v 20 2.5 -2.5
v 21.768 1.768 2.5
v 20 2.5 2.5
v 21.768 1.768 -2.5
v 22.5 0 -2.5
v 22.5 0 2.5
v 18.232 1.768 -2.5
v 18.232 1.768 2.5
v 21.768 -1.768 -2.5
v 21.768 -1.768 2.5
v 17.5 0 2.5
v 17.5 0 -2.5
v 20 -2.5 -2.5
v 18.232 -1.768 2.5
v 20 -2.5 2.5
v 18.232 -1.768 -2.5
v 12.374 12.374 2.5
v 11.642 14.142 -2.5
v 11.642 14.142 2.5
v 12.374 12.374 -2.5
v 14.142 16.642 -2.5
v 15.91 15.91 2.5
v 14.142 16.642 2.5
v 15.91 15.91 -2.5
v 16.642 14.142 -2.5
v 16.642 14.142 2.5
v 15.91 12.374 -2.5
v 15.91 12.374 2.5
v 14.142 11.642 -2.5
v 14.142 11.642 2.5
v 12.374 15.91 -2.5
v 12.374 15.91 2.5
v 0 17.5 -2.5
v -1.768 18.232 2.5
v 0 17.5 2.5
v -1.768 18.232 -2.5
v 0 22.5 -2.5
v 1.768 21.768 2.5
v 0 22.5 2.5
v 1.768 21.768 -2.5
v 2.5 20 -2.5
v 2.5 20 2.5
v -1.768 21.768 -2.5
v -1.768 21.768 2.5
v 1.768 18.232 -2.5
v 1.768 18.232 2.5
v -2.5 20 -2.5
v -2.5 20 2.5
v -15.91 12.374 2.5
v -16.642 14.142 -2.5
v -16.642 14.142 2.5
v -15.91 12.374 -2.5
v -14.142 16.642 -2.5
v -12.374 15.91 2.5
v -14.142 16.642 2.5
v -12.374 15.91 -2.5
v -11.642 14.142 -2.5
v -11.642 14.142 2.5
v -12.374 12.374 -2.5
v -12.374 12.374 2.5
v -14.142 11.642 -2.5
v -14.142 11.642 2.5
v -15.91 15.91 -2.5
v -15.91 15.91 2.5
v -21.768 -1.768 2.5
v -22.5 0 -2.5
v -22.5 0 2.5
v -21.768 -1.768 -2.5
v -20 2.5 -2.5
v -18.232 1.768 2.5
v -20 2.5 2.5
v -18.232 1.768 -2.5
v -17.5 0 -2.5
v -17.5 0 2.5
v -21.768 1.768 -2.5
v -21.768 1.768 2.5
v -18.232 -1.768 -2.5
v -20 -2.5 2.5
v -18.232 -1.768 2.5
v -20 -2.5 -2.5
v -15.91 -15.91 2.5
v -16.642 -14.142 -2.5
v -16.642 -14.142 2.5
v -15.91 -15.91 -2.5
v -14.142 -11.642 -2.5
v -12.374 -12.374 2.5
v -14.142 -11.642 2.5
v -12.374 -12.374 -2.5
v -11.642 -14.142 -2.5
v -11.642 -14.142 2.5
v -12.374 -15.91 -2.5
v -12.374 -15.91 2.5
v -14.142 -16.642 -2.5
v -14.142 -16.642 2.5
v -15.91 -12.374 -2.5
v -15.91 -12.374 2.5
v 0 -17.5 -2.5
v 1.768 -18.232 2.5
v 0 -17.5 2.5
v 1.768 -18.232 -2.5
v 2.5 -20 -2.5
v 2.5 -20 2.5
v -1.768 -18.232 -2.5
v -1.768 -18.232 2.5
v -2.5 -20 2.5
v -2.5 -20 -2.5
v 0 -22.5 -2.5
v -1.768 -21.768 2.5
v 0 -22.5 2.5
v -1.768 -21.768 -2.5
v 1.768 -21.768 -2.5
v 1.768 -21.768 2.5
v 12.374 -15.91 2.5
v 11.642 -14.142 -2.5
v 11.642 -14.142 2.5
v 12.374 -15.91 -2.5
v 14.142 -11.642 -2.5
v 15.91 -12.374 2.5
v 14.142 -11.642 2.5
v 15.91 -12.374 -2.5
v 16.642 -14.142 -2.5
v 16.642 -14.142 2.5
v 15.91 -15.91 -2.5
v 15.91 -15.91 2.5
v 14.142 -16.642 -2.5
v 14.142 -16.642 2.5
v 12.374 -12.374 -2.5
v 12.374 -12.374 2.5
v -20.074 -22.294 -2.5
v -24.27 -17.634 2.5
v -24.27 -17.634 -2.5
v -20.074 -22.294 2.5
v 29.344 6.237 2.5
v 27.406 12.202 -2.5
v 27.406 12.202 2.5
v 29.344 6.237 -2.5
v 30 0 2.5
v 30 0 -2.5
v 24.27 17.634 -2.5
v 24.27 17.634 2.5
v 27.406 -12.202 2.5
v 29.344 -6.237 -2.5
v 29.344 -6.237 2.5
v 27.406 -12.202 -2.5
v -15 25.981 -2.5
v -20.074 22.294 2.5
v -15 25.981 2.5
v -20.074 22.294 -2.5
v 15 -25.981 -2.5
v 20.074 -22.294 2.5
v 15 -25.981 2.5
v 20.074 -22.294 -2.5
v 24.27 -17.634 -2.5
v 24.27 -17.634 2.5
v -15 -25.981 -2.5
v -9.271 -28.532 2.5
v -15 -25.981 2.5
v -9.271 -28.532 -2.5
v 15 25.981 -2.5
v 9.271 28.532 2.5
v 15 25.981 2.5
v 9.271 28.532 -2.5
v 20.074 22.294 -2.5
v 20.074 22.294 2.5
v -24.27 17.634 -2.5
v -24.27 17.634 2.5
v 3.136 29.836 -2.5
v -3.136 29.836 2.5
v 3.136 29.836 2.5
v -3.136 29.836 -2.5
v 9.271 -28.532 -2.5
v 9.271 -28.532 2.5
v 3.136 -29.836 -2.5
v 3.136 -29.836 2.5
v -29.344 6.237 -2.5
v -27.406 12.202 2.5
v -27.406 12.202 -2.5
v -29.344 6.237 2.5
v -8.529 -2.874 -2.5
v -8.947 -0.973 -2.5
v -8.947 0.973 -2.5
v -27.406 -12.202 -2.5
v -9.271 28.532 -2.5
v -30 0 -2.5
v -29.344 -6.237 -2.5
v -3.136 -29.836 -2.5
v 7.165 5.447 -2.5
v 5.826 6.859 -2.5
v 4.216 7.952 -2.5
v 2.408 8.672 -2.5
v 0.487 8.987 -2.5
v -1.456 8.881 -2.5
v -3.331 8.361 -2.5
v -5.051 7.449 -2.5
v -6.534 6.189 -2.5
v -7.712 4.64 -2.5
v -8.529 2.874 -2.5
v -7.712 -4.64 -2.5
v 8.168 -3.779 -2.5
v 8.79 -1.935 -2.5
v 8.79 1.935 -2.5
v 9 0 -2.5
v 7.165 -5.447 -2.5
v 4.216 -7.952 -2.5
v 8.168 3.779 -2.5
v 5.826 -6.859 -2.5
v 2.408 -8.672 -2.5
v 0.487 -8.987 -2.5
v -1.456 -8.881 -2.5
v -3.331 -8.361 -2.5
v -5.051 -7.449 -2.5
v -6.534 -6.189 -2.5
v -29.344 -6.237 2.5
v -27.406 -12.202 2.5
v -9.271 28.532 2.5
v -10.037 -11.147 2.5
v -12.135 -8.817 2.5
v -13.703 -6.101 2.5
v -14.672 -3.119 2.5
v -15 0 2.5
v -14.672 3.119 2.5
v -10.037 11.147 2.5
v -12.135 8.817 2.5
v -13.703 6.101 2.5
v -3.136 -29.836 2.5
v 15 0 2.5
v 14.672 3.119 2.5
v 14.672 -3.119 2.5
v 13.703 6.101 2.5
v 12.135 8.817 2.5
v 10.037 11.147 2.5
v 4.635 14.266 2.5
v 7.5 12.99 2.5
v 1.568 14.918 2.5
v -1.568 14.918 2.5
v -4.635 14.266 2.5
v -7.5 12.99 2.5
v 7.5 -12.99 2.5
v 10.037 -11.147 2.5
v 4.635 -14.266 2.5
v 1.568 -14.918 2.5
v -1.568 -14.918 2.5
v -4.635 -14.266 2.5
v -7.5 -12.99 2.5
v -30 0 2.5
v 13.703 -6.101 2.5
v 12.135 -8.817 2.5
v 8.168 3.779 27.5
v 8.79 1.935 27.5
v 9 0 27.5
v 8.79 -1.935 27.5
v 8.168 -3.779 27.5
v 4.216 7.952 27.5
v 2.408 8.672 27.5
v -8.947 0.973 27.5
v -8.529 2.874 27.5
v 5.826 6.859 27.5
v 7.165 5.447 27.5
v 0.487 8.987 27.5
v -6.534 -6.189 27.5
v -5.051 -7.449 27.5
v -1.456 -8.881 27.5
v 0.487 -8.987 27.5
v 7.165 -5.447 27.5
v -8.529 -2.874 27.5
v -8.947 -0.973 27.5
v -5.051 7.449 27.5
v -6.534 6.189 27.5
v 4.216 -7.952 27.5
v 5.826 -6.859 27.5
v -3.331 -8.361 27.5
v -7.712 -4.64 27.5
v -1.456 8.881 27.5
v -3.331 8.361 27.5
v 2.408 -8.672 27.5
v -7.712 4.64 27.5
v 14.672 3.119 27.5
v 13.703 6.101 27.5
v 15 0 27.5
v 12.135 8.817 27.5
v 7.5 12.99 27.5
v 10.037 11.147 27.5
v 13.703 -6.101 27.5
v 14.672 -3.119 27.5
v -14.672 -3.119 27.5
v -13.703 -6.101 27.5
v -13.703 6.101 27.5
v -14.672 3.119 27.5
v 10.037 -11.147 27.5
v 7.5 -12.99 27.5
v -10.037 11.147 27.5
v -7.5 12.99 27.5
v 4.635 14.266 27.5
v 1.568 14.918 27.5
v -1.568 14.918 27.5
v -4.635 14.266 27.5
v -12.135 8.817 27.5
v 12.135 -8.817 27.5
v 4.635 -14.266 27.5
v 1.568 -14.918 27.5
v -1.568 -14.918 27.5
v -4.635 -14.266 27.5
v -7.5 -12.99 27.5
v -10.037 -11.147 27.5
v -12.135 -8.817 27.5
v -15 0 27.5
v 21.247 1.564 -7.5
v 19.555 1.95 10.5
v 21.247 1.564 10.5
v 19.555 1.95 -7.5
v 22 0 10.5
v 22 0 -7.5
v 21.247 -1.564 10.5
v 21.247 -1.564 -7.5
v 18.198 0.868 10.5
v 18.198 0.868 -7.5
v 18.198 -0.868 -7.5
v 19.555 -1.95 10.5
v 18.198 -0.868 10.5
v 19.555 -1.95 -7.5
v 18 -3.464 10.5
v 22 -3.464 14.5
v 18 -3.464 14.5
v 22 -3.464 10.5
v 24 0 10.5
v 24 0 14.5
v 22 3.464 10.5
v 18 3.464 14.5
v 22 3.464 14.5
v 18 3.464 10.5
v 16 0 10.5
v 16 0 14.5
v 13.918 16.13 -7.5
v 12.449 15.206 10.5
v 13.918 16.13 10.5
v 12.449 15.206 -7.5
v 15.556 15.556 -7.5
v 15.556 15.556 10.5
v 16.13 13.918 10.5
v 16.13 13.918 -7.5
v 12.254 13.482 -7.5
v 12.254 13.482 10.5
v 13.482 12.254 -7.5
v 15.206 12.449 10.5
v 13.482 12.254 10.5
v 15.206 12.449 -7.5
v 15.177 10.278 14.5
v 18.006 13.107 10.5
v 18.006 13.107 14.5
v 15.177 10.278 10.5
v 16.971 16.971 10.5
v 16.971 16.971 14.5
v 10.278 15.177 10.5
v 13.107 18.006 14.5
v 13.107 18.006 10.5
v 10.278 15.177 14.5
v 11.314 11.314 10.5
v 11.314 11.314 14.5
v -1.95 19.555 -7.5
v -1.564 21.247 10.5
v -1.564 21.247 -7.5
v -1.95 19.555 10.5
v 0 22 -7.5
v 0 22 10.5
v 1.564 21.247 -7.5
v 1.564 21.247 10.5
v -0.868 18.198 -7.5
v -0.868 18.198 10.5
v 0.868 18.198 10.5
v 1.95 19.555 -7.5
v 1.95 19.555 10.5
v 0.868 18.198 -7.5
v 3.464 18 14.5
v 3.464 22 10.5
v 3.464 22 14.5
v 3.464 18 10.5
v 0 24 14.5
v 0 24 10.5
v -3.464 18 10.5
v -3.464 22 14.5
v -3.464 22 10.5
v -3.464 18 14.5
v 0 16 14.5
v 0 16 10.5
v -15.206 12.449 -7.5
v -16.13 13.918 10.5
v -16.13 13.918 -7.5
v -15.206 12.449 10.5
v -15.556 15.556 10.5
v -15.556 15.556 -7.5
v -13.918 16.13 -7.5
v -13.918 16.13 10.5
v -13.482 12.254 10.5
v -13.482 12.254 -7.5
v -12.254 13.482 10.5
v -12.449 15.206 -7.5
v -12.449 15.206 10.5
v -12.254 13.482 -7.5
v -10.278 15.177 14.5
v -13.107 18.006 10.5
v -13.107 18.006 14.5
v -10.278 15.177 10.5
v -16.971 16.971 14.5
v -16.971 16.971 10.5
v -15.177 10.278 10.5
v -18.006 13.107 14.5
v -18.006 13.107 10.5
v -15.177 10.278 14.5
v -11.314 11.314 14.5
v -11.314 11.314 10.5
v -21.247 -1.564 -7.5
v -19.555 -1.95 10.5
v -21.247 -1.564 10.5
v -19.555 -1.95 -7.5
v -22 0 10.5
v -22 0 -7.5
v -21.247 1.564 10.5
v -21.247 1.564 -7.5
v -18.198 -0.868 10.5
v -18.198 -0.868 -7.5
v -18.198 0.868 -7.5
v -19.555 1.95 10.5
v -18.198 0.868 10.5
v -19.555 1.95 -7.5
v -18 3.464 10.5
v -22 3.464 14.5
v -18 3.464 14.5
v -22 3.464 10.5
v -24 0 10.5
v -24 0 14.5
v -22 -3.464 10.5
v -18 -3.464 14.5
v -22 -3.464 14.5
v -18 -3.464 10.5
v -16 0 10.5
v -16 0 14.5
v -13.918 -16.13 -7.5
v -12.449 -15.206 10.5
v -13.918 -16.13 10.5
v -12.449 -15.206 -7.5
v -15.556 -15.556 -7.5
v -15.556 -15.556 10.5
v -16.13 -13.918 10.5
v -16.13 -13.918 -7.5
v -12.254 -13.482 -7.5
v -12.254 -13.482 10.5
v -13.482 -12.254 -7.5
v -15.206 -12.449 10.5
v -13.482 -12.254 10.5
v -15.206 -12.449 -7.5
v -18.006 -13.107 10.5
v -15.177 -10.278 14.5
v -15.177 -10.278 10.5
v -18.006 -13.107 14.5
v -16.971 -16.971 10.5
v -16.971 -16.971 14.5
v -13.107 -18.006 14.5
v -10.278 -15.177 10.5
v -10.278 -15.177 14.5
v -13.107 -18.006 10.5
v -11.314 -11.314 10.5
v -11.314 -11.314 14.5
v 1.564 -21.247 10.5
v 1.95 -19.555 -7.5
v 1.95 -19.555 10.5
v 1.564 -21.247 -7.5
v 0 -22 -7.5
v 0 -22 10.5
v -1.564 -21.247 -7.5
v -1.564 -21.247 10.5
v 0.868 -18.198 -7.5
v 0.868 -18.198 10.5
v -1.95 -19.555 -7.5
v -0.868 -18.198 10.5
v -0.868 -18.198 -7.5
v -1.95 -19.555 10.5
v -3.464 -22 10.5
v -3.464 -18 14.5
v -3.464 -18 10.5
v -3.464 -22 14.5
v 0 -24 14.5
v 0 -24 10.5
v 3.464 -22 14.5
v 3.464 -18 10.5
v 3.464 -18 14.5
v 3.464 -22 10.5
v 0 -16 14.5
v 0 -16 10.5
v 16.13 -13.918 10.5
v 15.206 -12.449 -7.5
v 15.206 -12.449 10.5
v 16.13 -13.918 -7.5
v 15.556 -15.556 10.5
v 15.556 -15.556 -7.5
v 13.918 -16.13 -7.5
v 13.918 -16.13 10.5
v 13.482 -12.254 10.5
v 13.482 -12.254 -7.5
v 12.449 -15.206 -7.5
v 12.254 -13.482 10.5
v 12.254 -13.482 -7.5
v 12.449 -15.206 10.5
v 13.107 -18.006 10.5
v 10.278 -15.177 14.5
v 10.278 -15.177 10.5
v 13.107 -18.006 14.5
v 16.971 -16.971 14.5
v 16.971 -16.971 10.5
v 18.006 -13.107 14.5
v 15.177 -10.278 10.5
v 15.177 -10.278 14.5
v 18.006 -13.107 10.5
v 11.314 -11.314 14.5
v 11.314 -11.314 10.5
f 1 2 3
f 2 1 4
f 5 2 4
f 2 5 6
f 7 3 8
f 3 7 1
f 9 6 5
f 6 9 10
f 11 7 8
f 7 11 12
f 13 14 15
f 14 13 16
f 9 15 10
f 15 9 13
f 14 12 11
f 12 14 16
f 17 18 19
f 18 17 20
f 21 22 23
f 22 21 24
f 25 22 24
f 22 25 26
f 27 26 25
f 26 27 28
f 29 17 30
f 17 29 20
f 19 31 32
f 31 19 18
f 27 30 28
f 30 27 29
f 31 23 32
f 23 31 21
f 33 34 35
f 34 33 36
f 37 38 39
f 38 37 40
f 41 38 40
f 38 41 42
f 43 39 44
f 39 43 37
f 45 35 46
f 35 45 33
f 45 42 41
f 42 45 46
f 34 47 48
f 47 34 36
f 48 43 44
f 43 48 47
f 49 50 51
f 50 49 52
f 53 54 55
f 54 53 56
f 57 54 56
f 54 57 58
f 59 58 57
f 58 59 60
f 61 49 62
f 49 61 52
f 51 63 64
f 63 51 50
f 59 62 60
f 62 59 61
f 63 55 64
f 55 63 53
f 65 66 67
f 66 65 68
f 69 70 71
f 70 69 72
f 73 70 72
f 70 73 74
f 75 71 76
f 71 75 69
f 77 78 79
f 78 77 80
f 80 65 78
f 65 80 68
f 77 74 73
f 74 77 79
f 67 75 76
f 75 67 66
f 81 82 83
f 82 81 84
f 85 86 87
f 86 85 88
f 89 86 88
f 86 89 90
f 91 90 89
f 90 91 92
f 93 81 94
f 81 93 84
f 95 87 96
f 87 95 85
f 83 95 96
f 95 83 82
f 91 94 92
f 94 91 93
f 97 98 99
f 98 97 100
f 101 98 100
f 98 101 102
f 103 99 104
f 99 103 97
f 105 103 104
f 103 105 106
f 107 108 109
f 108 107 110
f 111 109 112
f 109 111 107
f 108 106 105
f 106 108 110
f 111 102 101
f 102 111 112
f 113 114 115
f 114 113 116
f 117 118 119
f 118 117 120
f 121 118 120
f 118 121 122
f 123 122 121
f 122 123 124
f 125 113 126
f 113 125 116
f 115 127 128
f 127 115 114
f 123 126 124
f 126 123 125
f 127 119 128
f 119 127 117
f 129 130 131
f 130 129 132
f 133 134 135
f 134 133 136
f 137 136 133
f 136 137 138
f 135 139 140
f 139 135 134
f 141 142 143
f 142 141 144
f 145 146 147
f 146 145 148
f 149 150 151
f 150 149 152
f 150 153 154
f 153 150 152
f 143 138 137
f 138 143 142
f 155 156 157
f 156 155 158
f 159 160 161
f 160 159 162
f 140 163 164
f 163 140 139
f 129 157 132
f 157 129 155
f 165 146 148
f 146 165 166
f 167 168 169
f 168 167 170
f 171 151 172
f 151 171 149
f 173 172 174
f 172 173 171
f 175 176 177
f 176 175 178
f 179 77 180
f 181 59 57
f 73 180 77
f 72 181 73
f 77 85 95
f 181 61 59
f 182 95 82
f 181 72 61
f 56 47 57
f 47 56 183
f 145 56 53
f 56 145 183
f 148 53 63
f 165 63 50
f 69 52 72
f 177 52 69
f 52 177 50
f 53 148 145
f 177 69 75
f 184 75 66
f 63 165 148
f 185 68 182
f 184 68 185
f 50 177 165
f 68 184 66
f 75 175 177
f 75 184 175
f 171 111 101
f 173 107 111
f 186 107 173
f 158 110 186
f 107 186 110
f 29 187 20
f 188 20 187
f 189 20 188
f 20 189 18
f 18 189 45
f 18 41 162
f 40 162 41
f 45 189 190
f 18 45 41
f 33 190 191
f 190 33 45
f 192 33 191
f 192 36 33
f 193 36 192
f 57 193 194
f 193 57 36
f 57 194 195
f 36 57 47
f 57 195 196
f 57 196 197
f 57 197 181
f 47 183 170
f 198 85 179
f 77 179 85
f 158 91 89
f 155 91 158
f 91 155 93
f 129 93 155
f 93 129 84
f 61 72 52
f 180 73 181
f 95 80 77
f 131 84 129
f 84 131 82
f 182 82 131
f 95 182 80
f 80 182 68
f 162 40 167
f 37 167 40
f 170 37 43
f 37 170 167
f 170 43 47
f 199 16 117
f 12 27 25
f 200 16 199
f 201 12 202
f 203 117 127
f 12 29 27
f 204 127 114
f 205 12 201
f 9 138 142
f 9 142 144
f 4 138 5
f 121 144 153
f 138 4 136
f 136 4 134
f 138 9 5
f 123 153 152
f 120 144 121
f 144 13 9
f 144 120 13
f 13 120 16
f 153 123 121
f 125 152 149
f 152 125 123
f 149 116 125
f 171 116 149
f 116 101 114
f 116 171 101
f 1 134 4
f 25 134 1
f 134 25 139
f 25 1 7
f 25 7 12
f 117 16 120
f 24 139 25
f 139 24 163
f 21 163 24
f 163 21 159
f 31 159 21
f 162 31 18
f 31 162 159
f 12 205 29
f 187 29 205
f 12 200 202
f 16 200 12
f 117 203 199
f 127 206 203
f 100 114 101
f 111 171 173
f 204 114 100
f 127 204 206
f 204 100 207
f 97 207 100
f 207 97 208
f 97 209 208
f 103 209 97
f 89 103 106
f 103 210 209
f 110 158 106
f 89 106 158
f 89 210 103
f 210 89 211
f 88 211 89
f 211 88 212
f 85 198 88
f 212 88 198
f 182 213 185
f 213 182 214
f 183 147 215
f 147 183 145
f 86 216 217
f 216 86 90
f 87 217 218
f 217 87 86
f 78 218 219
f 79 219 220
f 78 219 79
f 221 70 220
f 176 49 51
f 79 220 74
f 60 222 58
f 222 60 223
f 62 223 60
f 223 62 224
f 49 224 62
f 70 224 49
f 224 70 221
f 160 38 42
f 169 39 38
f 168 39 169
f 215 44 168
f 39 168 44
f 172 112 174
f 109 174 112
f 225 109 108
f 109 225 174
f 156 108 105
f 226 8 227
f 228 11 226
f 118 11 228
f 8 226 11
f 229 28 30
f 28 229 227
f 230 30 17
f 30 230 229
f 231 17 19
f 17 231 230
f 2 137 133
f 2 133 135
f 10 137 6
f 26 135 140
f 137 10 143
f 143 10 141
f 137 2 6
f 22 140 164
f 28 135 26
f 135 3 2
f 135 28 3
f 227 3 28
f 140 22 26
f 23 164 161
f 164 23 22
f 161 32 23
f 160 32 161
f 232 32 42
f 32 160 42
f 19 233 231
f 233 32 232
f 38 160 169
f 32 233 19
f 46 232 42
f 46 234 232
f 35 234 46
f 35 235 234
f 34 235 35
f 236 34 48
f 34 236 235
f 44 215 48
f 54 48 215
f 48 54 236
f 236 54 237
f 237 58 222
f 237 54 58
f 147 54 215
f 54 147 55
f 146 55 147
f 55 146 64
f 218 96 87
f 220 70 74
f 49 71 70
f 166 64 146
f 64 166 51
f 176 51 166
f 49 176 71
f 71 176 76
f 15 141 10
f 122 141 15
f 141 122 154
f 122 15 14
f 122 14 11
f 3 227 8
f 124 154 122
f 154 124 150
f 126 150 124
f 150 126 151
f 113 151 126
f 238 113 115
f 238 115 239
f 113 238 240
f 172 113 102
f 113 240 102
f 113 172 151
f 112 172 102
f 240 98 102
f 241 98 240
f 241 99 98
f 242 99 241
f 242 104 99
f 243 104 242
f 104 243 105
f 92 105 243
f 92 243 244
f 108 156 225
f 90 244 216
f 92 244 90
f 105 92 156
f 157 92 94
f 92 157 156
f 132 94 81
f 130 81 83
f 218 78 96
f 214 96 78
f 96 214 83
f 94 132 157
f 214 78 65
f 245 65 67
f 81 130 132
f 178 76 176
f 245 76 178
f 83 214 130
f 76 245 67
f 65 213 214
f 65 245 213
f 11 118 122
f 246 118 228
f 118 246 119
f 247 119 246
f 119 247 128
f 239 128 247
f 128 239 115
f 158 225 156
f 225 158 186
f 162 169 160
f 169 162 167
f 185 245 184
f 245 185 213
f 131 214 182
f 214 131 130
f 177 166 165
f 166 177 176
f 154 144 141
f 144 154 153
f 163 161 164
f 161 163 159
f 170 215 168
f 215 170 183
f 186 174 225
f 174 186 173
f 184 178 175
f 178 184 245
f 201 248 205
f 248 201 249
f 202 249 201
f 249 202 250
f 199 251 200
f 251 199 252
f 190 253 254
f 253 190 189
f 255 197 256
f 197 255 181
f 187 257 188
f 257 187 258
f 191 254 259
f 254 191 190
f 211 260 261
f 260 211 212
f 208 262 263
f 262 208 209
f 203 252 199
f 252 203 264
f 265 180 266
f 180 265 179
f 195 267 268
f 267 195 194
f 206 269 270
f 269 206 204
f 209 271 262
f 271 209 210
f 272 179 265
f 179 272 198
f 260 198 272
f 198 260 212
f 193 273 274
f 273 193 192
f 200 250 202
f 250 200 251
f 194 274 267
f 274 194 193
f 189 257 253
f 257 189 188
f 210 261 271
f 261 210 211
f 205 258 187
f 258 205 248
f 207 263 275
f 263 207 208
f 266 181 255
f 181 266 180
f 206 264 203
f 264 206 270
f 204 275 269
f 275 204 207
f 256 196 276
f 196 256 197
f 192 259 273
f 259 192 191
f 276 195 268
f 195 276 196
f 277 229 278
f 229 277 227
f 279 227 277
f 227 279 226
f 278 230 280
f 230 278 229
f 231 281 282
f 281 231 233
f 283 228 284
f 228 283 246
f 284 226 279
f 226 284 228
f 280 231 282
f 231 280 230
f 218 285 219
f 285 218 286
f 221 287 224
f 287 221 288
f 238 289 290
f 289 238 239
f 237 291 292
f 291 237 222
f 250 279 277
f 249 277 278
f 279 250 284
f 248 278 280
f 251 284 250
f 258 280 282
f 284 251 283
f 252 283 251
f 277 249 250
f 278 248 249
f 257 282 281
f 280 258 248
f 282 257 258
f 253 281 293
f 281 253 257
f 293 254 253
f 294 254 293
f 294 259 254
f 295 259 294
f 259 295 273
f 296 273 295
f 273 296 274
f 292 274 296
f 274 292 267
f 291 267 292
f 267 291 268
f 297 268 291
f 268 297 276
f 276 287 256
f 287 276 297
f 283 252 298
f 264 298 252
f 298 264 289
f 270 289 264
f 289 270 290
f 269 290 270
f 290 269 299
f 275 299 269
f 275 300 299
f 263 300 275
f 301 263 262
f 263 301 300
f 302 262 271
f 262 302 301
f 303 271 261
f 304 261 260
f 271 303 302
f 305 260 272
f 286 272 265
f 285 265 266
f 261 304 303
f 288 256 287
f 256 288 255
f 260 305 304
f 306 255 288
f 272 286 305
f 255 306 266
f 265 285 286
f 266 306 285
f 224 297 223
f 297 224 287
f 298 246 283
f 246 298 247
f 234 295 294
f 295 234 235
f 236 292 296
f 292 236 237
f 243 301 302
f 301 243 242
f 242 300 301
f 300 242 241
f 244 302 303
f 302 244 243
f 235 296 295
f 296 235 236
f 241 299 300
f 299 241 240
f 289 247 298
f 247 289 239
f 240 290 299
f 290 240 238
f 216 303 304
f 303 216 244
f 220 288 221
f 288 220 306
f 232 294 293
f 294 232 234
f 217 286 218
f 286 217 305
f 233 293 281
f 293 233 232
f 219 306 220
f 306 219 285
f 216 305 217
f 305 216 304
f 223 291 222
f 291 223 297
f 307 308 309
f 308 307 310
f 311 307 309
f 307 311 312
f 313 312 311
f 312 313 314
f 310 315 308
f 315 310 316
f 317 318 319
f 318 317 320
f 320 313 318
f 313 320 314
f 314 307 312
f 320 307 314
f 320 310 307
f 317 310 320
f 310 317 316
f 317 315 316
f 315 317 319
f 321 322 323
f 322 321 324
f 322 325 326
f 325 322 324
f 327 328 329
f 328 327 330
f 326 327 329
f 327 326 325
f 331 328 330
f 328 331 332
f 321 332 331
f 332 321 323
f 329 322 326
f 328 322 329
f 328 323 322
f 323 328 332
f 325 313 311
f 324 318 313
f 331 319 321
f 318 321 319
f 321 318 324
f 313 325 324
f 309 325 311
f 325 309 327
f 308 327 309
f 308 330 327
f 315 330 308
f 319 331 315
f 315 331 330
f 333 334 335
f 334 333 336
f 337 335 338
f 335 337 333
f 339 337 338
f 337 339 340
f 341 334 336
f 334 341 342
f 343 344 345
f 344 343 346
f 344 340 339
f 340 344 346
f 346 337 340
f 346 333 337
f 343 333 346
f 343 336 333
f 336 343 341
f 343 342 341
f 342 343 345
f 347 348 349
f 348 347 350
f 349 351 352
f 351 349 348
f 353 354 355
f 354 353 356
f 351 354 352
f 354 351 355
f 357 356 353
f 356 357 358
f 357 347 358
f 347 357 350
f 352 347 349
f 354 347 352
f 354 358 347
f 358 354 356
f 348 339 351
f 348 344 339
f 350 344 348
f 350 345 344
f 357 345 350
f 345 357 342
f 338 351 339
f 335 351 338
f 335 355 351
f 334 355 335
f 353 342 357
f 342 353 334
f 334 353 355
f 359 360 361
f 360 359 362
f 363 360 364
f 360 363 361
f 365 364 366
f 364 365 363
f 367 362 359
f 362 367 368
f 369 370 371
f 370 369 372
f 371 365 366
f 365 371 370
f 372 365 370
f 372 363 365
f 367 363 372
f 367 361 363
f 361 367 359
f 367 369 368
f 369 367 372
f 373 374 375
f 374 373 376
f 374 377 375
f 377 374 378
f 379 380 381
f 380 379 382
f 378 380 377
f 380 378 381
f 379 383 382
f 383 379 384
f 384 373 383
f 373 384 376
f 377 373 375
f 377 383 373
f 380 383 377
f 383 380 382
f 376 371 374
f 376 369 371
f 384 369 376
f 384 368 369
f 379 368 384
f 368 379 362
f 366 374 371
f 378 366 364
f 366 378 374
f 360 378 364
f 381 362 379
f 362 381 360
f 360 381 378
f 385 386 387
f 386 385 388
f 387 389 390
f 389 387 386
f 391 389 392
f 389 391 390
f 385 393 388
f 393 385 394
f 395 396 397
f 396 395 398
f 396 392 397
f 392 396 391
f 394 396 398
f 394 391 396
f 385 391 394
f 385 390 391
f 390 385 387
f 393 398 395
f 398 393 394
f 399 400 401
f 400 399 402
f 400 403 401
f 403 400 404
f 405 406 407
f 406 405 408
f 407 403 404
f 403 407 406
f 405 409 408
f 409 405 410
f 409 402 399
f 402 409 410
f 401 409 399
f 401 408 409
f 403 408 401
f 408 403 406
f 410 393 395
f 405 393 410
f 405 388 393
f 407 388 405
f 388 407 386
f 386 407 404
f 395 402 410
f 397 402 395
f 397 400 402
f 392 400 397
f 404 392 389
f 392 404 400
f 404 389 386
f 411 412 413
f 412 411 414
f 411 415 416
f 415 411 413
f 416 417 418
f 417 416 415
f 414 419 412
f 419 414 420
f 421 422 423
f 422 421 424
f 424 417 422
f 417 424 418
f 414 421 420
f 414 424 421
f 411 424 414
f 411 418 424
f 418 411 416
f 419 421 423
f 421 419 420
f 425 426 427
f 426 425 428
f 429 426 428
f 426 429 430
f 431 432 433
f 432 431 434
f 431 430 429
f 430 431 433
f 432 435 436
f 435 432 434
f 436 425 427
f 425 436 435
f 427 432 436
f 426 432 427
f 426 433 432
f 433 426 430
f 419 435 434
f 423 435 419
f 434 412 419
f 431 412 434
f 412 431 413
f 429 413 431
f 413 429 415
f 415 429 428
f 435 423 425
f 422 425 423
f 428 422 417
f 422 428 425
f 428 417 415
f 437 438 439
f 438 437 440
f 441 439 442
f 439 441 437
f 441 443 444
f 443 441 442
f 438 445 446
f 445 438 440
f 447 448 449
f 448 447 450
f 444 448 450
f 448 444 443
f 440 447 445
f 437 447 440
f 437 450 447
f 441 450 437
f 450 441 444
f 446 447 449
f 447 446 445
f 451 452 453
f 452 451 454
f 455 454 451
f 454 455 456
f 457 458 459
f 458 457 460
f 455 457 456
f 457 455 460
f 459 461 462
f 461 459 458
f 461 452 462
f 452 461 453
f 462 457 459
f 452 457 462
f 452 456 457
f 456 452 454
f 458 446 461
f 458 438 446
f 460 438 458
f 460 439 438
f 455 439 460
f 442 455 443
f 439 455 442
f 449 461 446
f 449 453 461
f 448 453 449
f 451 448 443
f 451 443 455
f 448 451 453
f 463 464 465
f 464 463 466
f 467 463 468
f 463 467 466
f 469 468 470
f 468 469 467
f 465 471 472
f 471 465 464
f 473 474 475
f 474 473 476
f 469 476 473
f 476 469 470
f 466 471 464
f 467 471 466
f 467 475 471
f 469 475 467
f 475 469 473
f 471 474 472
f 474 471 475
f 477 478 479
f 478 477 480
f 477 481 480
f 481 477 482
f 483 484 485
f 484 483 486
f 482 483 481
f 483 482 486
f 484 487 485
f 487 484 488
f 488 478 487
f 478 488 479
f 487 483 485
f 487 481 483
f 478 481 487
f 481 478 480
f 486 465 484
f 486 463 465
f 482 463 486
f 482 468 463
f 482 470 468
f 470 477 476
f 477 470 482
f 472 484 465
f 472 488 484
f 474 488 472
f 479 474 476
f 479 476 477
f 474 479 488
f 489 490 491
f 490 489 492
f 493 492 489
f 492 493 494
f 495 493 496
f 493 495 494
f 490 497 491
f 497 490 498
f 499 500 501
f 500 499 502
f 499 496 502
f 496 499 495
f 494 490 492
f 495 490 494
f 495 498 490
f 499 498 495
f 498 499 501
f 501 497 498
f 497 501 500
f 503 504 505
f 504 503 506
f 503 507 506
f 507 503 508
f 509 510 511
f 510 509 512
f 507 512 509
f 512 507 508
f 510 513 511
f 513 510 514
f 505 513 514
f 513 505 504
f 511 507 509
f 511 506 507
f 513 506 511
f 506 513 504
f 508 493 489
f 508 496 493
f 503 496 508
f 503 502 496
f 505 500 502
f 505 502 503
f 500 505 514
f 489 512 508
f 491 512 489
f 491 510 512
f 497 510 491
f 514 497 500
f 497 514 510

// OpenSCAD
// Parameters
flange_diameter = 60;
flange_thickness = 5;
hub_diameter = 30;
hub_length = 25; // Adjusted hub height to match the original model
bore_diameter = 18; // Adjusted bore size to match the original model
bolt_hole_diameter = 5;
bolt_count = 8; // Increased bolt count to match the original model
bolt_length = 20; // Increased bolt length to match the original model
bolt_diameter = 4;
nut_diameter = 8; // Adjusted nut size to match the original model
nut_thickness = 4;
bolt_circle_diameter = 40;

// Module for the flange
module flange() {
    difference() {
        cylinder(d=flange_diameter, h=flange_thickness, center=true);
        cylinder(d=bore_diameter, h=flange_thickness + 2, center=true);
        for (i = [0:bolt_count-1]) {
            angle = i * 360 / bolt_count;
            x = bolt_circle_diameter / 2 * cos(angle);
            y = bolt_circle_diameter / 2 * sin(angle);
            translate([x, y, 0])
                cylinder(d=bolt_hole_diameter, h=flange_thickness + 2, center=true);
        }
    }
}

// Module for the hub
module hub() {
    difference() {
        cylinder(d=hub_diameter, h=hub_length, center=true);
        cylinder(d=bore_diameter, h=hub_length + 2, center=true);
    }
}

// Module for a single bolt
module bolt() {
    union() {
        cylinder(d=bolt_diameter, h=bolt_length, center=true);
        translate([0, 0, bolt_length/2])
            cylinder(d=nut_diameter, h=nut_thickness, center=true, $fn=6);
    }
}

// Module for assembling the coupling
module coupling() {
    flange();
    translate([0, 0, flange_thickness/2 + hub_length/2])
        hub();
    for (i = [0:bolt_count-1]) {
        angle = i * 360 / bolt_count;
        x = bolt_circle_diameter / 2 * cos(angle);
        y = bolt_circle_diameter / 2 * sin(angle);
        translate([x, y, flange_thickness/2])
            rotate([0, 0, angle])
                bolt();
    }
}

// Render the coupling
coupling();
